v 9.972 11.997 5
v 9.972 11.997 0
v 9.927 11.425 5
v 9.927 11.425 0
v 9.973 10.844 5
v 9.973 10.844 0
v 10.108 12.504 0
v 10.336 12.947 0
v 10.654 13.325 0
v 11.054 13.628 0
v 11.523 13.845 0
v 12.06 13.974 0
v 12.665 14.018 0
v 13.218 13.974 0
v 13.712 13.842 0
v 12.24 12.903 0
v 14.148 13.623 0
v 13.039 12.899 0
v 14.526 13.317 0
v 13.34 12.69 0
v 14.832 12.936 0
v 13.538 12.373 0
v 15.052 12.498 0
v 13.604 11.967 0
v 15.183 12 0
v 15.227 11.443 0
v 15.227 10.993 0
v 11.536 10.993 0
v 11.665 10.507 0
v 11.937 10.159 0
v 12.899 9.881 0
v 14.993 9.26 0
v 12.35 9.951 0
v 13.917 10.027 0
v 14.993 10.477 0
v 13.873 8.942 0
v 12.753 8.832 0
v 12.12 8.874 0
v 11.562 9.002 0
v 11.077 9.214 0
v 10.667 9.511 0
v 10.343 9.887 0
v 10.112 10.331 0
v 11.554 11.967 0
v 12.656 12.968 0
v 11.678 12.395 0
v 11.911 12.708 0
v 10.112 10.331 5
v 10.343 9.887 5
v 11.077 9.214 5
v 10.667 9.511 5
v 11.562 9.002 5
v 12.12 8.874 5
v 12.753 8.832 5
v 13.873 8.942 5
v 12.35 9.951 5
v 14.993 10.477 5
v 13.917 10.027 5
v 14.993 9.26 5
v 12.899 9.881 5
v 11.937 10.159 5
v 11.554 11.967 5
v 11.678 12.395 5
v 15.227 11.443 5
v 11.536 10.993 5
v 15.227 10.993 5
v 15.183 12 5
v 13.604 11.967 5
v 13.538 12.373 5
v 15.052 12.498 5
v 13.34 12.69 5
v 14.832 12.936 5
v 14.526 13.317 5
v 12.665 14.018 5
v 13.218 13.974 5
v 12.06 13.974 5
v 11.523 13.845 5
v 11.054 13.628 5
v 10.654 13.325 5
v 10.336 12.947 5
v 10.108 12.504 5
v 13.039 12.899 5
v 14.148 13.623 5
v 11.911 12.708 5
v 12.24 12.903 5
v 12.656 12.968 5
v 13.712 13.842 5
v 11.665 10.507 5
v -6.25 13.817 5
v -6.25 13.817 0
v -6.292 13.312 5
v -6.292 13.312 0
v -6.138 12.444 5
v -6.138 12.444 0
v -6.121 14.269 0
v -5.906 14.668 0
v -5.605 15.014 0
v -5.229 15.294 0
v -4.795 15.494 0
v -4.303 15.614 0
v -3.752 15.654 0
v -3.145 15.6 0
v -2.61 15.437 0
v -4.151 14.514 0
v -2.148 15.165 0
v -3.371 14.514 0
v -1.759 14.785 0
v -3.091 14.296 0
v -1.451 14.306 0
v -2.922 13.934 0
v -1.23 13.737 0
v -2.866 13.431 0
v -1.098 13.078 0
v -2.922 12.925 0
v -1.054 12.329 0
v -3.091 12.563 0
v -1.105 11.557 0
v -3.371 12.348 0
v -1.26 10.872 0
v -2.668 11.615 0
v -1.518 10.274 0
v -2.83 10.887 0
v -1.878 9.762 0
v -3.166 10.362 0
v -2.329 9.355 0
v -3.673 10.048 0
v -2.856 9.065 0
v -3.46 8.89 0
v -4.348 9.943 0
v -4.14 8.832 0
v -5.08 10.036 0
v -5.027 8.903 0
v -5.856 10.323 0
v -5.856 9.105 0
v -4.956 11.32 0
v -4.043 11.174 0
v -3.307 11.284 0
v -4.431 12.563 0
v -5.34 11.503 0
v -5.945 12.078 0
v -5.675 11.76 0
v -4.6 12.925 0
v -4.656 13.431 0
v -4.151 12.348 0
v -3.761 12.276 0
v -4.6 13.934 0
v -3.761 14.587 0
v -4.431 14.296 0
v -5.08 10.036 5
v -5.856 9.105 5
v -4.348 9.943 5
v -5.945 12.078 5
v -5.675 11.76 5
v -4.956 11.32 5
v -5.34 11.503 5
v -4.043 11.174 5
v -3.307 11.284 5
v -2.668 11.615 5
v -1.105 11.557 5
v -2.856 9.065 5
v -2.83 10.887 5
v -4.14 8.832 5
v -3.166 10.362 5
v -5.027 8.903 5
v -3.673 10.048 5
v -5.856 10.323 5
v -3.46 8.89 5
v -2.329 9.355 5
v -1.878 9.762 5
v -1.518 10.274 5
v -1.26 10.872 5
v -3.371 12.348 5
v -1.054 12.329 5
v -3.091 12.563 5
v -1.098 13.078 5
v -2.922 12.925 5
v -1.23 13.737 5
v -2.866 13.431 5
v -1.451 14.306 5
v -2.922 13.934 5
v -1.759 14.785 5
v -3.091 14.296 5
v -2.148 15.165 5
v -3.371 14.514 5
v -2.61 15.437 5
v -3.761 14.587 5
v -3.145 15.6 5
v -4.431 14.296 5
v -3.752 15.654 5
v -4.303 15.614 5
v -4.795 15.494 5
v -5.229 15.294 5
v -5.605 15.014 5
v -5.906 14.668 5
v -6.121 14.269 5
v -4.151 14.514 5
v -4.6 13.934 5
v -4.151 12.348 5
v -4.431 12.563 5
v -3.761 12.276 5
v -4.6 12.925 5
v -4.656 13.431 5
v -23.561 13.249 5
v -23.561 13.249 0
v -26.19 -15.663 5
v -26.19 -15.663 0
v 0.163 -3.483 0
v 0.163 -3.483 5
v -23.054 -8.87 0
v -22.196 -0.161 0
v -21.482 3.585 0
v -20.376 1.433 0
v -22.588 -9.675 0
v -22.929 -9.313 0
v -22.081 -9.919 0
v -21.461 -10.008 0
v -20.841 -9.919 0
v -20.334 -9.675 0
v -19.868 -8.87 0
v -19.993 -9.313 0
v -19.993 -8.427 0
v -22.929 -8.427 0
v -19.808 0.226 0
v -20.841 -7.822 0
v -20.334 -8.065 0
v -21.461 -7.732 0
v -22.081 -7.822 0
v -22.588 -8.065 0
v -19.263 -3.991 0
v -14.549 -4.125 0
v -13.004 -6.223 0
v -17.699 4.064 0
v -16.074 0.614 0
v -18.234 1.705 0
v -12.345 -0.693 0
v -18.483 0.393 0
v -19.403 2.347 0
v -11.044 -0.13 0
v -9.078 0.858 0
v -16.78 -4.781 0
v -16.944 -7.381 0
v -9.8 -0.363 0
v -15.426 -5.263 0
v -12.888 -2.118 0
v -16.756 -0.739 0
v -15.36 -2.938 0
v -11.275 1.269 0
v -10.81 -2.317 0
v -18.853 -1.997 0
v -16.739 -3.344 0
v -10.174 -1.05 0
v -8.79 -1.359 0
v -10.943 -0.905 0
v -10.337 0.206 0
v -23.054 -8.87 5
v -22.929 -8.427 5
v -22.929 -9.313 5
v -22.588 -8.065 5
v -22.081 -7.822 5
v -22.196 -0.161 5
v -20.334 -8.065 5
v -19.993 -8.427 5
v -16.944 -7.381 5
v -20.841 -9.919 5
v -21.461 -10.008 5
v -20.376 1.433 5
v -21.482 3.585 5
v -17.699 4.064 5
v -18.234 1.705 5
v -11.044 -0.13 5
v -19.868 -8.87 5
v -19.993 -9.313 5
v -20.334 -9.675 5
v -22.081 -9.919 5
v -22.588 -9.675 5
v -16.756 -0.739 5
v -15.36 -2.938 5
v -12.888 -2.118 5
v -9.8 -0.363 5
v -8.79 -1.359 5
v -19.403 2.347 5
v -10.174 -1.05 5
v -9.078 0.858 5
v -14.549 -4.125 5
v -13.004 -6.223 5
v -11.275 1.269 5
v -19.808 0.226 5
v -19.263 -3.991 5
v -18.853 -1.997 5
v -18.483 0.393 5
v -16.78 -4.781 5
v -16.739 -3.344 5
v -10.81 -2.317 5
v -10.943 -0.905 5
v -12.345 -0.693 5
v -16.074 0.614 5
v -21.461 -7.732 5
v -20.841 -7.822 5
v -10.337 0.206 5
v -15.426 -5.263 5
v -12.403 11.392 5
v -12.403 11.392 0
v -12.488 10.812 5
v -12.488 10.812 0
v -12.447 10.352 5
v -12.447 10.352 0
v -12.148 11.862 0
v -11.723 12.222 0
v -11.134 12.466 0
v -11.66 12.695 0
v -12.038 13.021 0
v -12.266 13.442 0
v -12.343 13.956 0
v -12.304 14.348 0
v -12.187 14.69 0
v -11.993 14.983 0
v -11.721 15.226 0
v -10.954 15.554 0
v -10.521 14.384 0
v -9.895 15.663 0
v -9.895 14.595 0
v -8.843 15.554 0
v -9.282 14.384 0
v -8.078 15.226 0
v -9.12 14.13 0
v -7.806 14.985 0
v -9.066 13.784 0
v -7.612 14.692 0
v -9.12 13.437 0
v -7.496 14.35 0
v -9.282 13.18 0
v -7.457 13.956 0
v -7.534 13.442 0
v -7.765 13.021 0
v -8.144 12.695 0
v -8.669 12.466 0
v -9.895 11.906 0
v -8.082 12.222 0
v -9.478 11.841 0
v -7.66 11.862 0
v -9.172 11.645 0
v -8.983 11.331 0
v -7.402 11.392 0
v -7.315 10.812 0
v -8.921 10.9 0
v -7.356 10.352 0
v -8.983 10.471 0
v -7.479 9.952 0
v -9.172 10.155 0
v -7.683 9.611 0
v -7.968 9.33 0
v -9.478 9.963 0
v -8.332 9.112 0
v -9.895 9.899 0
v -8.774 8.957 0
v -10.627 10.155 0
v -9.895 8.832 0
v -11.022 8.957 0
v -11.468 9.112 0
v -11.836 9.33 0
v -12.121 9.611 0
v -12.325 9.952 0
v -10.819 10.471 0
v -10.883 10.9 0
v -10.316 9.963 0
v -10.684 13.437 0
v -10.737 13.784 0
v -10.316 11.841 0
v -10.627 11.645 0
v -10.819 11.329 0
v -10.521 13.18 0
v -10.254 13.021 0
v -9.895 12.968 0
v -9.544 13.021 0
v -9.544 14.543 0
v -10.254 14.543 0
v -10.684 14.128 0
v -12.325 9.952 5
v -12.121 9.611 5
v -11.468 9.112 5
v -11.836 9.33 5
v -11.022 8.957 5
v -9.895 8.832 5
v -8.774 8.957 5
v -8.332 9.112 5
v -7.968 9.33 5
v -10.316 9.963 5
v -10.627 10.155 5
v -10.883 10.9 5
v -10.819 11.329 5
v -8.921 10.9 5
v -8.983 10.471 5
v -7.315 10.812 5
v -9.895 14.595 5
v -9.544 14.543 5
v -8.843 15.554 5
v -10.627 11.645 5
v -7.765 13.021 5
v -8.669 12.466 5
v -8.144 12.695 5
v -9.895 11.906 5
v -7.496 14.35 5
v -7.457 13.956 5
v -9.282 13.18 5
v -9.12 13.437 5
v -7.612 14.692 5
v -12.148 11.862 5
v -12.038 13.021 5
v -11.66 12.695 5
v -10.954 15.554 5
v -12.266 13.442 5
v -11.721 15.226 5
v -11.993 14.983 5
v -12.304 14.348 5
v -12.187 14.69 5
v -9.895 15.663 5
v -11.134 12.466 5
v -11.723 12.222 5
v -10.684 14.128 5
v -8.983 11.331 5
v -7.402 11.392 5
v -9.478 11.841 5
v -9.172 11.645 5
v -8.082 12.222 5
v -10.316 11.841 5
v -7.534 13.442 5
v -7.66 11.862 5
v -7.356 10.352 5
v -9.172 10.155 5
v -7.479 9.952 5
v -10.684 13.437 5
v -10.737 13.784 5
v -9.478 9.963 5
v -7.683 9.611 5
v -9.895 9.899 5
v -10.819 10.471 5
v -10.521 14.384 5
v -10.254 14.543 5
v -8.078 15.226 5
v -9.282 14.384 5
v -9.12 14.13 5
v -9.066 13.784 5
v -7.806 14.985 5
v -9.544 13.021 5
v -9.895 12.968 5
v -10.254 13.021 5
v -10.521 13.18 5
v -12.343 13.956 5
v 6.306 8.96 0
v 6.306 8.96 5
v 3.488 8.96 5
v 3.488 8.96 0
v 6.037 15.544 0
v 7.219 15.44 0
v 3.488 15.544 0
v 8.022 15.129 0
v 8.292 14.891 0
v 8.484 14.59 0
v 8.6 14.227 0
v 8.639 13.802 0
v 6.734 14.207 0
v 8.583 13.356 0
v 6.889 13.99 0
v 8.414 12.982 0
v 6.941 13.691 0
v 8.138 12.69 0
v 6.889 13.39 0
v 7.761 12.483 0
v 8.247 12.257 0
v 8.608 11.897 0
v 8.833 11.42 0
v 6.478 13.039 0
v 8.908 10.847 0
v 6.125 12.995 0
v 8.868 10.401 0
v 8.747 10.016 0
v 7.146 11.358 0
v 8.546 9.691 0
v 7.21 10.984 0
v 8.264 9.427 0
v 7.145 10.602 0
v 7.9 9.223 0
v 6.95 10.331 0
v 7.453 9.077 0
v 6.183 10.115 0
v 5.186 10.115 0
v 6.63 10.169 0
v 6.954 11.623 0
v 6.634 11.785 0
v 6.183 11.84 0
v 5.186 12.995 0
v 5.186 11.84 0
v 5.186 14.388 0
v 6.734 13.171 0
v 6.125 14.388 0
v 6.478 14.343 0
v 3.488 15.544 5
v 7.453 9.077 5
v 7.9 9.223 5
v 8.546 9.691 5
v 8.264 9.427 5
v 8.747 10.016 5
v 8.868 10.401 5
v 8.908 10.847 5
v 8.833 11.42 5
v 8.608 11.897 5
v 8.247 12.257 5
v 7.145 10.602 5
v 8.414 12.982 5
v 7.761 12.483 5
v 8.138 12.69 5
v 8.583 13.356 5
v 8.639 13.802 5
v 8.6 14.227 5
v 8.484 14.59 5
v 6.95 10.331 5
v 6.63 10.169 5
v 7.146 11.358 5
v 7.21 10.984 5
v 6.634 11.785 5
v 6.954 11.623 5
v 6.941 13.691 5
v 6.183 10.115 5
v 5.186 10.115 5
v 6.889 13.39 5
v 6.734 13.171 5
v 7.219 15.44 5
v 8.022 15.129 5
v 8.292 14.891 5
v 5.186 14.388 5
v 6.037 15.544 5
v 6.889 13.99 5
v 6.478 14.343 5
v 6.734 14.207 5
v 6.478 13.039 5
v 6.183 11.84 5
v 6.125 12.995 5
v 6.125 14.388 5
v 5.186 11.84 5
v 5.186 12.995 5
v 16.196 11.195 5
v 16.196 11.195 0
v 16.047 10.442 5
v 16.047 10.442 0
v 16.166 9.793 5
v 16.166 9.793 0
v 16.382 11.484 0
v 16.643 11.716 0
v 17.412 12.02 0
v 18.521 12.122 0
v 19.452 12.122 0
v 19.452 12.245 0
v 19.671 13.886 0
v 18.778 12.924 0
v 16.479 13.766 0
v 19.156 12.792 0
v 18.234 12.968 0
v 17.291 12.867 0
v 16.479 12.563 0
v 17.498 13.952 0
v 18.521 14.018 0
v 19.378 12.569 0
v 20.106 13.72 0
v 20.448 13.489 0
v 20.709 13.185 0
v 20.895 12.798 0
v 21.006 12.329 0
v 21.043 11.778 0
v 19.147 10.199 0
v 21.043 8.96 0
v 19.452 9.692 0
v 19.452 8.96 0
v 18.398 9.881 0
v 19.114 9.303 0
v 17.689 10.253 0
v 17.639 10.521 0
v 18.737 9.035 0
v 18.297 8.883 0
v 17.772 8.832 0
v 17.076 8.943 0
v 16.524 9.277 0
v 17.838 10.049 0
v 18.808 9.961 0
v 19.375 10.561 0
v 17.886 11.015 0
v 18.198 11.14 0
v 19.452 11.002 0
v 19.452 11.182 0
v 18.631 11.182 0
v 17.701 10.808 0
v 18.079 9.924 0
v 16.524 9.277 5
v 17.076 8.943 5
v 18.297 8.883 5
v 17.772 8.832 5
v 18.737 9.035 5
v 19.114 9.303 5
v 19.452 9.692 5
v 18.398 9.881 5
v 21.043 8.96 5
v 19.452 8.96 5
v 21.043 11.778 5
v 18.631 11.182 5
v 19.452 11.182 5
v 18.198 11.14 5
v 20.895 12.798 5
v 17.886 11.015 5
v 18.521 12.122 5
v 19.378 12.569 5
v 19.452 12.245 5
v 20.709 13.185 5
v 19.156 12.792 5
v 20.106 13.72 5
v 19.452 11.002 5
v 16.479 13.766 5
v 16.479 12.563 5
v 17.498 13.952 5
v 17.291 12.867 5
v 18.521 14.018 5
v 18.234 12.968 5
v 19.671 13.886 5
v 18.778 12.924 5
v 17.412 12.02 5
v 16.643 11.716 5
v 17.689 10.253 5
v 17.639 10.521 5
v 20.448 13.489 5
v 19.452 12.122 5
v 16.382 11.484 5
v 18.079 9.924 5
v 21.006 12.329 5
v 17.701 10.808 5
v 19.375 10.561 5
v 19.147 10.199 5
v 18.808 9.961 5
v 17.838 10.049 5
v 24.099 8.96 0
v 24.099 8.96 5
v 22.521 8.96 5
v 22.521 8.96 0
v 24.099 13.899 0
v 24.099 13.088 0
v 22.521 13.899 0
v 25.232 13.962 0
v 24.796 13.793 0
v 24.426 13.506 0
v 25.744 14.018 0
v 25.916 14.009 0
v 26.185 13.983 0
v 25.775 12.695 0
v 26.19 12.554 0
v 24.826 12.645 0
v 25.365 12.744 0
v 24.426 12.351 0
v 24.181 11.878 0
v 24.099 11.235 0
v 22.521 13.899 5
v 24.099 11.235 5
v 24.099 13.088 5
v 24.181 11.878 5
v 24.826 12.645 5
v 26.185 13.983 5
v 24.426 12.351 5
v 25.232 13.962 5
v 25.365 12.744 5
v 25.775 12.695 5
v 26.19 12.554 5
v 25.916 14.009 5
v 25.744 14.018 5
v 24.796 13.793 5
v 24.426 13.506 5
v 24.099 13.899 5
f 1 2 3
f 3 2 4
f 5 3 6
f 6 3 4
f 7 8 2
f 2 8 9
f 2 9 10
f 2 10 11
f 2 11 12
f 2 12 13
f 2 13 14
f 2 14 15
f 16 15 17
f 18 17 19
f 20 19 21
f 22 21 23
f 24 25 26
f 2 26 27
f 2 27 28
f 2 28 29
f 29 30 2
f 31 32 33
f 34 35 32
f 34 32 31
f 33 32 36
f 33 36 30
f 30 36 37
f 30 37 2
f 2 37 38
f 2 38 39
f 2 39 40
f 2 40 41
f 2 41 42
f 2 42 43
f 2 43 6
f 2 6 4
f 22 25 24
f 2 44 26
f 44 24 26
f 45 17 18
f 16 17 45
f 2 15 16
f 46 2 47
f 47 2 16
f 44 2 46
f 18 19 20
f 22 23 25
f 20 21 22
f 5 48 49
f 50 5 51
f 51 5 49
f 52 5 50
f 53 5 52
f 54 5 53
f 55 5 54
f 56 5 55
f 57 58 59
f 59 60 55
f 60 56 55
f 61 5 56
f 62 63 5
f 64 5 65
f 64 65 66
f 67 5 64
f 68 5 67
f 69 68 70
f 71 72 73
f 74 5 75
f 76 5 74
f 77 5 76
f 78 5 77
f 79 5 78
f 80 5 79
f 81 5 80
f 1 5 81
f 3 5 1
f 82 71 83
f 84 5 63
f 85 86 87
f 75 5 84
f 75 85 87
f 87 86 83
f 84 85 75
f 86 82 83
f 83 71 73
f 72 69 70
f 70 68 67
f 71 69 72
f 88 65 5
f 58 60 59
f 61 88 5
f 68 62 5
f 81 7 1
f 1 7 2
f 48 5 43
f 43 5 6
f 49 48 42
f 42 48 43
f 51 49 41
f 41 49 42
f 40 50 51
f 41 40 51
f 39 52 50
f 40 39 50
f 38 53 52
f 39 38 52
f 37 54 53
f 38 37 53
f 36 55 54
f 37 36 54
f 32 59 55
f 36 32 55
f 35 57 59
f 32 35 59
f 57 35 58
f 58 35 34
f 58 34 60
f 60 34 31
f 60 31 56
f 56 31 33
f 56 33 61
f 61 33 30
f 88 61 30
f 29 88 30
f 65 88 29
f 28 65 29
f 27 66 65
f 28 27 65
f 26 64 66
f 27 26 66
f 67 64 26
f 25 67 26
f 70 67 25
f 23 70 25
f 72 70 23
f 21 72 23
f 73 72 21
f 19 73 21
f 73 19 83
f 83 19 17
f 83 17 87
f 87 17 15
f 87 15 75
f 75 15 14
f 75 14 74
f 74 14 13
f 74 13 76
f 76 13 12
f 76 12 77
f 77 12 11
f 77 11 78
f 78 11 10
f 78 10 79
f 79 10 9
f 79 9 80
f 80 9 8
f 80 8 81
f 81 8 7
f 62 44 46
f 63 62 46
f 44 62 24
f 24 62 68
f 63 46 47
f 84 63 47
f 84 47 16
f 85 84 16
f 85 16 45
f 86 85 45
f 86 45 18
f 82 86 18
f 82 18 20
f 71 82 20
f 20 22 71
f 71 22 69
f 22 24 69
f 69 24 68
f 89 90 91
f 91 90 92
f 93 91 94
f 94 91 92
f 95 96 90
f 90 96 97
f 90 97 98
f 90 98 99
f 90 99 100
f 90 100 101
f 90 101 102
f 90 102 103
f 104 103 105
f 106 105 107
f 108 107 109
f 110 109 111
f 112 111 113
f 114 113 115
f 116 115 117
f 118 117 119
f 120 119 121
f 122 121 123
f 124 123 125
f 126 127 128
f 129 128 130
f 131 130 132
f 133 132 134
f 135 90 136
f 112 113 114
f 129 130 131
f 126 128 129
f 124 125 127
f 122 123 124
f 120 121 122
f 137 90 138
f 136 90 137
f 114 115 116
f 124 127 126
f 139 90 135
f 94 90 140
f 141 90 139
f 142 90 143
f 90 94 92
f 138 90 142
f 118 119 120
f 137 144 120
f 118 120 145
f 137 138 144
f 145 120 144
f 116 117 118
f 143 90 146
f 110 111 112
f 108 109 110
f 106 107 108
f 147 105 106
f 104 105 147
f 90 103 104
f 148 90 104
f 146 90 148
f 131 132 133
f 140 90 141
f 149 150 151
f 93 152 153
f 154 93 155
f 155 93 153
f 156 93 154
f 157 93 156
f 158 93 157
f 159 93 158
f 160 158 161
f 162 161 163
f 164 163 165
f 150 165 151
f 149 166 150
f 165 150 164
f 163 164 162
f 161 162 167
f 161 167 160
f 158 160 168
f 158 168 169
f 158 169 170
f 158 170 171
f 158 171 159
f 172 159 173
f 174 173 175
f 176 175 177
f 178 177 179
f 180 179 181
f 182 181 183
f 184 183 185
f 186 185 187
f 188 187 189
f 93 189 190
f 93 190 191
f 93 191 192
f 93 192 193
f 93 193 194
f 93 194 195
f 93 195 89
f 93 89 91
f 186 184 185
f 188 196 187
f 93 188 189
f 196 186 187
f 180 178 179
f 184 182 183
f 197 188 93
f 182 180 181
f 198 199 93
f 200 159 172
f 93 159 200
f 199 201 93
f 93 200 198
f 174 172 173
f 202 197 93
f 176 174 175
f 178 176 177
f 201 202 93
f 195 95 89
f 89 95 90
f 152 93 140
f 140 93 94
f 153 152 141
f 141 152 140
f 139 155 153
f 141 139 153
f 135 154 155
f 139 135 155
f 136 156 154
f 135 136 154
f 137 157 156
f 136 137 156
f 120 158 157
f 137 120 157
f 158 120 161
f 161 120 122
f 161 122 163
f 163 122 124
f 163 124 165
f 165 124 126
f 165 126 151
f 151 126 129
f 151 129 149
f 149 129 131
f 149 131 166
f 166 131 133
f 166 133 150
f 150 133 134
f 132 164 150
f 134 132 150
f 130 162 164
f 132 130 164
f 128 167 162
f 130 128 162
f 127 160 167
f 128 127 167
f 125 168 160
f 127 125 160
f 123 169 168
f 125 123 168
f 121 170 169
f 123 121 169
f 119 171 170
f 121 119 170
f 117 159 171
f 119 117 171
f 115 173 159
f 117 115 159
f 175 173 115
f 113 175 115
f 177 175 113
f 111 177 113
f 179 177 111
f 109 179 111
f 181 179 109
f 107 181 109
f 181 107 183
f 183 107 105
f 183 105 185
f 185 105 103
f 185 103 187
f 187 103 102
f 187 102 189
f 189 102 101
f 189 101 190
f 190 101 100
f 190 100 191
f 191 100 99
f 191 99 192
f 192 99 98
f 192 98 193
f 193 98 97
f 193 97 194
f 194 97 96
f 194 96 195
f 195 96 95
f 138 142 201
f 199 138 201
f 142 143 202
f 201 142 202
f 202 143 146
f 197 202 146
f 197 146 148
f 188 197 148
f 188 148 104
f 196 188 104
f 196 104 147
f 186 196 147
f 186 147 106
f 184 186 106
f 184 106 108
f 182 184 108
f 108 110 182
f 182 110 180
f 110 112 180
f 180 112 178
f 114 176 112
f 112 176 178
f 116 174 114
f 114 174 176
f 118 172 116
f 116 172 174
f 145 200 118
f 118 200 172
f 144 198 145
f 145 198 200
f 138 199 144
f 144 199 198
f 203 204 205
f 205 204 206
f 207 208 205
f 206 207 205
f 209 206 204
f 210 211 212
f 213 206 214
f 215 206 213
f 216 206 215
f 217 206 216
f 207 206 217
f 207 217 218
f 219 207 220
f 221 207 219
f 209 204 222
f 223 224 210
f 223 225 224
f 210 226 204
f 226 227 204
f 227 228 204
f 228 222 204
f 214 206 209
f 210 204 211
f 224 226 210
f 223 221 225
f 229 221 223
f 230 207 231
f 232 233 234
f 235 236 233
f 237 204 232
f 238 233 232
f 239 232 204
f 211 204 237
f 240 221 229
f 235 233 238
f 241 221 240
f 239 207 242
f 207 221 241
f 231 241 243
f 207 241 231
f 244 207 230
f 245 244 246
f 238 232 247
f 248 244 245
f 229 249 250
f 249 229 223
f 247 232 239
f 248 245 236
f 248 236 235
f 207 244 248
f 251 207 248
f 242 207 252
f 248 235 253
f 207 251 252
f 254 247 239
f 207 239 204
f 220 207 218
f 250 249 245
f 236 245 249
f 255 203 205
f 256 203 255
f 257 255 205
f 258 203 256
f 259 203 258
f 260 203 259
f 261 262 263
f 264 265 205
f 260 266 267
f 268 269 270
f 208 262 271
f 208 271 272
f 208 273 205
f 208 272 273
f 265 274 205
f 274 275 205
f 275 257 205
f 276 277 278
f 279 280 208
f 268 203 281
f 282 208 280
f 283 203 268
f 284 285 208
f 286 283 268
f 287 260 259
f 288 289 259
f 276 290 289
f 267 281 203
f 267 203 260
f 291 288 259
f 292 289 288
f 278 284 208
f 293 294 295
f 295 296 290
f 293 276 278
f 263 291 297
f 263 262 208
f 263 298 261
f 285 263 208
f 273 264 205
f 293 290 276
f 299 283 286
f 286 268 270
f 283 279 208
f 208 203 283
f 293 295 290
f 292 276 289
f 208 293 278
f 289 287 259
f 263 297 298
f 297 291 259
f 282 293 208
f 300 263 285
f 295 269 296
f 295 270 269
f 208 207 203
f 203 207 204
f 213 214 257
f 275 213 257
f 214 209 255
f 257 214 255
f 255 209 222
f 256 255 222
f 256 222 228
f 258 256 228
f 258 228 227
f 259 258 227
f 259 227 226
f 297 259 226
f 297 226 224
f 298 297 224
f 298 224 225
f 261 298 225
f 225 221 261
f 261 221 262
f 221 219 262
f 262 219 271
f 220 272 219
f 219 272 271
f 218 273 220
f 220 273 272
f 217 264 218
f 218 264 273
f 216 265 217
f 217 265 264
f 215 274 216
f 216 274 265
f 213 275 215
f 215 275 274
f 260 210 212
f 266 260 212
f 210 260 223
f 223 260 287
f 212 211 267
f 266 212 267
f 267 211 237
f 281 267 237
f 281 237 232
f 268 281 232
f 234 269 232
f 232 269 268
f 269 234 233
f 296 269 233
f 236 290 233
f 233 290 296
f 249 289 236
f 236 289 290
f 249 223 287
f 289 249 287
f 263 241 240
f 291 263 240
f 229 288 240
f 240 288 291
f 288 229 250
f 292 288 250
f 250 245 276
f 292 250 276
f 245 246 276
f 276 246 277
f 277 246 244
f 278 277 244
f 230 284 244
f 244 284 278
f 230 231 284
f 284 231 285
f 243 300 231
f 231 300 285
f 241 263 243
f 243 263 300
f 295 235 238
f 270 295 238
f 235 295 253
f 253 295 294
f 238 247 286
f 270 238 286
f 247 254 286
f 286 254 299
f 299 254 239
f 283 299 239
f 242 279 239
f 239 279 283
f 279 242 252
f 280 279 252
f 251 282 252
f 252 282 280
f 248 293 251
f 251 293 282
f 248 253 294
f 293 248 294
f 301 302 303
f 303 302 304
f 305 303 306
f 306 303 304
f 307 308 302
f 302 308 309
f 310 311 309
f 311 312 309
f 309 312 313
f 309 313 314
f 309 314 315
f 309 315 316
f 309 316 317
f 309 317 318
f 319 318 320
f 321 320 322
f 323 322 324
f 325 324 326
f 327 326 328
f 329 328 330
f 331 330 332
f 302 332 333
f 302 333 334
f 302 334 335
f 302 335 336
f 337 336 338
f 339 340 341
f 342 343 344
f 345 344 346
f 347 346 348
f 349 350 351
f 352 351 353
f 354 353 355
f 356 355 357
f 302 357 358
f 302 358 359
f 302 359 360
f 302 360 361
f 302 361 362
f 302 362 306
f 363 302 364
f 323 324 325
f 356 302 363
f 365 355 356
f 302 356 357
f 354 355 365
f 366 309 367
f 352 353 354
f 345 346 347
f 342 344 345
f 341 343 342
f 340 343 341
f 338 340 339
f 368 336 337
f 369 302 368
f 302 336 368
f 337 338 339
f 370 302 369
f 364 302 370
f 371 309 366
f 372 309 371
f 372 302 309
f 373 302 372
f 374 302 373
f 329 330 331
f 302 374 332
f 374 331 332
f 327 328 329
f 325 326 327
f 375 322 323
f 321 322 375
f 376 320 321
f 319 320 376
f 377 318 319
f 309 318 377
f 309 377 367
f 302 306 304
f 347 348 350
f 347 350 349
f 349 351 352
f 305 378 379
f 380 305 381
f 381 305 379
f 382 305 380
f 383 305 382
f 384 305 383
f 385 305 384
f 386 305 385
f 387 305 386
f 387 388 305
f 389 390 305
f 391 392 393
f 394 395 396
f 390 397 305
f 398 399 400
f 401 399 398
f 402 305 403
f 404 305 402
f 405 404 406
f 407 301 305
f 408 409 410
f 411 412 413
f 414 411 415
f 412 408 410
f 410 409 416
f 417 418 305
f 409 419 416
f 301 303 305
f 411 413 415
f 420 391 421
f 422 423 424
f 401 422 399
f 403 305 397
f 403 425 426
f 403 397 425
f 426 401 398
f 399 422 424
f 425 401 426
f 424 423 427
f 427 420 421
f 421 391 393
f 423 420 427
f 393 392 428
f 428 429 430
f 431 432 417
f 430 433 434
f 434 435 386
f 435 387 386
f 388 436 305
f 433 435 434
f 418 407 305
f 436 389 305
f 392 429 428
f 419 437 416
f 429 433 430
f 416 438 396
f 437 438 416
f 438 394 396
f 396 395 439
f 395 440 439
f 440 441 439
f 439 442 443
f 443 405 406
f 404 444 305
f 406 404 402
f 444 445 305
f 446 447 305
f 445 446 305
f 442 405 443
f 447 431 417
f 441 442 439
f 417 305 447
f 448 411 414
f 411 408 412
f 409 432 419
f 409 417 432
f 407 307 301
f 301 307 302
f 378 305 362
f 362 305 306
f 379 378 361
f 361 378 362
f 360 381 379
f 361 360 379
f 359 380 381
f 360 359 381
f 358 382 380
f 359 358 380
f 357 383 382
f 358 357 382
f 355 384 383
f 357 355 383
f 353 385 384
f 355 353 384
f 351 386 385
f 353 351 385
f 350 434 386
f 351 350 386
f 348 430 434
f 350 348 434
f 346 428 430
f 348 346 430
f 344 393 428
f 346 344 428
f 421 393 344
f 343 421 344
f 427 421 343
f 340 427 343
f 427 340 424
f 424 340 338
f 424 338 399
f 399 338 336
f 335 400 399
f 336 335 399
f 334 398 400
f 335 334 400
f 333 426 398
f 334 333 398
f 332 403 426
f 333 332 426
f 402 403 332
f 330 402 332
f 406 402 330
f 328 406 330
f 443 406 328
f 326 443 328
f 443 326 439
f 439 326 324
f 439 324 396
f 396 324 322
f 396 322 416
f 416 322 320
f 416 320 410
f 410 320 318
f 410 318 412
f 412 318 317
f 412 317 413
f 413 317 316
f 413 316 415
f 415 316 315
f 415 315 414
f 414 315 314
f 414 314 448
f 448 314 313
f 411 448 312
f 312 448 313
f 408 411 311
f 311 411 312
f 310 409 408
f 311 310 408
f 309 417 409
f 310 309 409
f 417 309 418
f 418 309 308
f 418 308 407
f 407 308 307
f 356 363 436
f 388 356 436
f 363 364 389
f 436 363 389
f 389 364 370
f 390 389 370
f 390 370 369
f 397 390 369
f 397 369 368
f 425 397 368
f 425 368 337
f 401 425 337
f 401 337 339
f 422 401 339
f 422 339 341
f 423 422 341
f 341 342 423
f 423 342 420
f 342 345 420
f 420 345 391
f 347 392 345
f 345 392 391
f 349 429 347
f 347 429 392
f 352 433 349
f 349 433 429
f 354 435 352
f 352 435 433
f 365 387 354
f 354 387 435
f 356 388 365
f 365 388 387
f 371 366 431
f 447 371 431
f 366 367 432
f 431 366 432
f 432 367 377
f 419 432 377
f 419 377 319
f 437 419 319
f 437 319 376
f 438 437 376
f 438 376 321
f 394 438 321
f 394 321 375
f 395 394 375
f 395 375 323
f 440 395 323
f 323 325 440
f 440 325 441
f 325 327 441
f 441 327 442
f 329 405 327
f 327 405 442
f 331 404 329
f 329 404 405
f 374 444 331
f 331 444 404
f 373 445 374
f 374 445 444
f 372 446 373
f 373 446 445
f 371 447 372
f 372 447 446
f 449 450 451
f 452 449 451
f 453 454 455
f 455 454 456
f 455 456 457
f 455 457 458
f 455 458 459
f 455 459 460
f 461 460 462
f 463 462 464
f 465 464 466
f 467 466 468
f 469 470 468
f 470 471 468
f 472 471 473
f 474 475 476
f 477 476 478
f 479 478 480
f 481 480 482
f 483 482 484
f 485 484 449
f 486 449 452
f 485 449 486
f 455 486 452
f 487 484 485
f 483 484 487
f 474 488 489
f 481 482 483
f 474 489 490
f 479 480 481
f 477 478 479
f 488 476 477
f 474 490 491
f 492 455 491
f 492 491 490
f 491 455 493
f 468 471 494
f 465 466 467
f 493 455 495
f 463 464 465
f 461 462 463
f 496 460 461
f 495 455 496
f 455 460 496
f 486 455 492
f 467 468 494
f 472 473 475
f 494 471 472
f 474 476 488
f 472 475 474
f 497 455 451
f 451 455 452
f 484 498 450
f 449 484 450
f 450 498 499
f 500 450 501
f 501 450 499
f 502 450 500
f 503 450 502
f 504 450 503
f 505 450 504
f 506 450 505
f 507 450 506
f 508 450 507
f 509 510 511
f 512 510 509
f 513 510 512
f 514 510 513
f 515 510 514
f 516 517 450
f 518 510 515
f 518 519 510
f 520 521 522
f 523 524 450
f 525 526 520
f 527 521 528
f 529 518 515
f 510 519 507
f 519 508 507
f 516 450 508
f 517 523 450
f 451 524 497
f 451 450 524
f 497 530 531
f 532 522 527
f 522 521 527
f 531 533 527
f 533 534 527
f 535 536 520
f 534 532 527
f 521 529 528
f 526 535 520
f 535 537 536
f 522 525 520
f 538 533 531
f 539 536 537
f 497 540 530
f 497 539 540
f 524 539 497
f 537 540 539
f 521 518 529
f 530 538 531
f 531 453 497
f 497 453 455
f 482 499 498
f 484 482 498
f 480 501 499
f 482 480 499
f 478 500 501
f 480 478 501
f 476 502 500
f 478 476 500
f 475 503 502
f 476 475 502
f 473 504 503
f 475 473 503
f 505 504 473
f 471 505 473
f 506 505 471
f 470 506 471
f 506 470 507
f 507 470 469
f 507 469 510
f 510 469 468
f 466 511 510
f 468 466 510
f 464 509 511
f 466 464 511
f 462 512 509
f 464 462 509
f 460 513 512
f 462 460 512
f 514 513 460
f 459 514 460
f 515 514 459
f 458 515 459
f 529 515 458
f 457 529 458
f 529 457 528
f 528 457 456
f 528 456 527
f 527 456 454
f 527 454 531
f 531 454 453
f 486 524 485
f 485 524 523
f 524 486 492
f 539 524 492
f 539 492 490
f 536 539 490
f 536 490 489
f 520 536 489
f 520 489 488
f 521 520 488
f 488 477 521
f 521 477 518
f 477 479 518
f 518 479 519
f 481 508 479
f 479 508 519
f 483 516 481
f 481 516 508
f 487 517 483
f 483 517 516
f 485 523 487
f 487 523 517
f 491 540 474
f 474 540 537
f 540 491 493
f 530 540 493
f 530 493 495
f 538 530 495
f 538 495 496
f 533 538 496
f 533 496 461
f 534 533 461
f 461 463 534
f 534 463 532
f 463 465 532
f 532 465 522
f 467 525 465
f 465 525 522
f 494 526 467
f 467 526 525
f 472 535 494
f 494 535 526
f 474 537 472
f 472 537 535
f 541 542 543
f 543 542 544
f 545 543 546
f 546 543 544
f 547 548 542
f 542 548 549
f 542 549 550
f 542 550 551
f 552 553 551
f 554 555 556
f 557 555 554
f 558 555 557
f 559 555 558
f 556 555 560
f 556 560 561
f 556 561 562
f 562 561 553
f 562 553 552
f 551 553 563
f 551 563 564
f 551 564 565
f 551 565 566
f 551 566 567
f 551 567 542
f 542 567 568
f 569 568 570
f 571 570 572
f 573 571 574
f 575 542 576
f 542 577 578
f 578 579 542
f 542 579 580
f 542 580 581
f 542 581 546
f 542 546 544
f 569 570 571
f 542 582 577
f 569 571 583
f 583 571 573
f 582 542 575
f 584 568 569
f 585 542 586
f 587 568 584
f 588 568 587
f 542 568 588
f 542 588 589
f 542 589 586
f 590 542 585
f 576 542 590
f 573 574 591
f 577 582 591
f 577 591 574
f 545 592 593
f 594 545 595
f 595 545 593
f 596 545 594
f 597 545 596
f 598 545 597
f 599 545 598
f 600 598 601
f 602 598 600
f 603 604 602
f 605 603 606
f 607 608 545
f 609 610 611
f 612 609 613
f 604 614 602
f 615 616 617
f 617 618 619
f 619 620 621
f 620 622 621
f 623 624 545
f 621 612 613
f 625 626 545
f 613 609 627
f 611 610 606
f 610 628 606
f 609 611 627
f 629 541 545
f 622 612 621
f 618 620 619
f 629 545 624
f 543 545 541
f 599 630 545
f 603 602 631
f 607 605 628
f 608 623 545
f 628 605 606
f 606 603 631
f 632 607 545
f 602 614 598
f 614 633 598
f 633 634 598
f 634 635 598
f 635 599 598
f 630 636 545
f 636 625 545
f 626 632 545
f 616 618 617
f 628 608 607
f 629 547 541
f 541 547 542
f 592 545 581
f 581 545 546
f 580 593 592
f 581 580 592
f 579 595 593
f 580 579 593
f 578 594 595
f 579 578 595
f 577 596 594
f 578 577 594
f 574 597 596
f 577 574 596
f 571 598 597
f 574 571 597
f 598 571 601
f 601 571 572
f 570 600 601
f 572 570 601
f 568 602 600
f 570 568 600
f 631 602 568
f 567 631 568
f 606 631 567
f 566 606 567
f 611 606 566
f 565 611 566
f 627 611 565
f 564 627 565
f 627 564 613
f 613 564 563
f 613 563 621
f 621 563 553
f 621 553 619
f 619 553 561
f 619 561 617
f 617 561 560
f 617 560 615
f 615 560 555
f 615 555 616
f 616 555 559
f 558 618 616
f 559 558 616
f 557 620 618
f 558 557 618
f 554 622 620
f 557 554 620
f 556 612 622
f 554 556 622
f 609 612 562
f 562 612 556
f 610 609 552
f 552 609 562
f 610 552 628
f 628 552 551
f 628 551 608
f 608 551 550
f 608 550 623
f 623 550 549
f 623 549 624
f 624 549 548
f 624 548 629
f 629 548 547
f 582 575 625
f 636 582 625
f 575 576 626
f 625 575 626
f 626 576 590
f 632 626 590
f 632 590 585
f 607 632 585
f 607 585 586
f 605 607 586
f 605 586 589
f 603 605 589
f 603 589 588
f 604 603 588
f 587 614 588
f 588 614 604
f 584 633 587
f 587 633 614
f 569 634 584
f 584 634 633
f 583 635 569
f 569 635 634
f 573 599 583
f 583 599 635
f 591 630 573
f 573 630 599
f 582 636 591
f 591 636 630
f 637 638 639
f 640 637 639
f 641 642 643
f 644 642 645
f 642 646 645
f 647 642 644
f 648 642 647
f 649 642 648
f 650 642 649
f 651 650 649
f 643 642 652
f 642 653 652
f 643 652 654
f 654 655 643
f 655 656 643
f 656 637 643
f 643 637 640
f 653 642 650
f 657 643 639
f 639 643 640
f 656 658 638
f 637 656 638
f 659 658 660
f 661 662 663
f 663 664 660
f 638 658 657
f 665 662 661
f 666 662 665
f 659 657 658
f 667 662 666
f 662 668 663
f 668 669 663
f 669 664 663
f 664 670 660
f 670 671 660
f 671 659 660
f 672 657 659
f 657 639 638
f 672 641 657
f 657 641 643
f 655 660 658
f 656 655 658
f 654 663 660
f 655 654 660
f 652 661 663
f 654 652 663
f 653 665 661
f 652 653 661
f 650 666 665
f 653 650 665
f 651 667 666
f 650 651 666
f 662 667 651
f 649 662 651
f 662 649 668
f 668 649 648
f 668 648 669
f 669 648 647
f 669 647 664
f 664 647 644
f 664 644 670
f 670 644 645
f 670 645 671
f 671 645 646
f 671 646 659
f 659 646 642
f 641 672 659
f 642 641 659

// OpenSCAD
// Module names are of the form poly_<inkscape-path-id>().  As a result,
// you can associate a polygon in this OpenSCAD program with the corresponding
// SVG element in the Inkscape document by looking for the XML element with
// the attribute id="inkscape-path-id".

// fudge value is used to ensure that subtracted solids are a tad taller
// in the z dimension than the polygon being subtracted from.  This helps
// keep the resulting .stl file manifold.
fudge = 0.1;

module poly_path2996(h)
{
  scale([25.4/90, -25.4/90, 1]) union()
  {
    difference()
    {
       linear_extrude(height=h)
         polygon([[53.953965,-40.544545],[53.953965,-38.950795],[40.875845,-38.950795],[41.332867,-37.228138],[42.297715,-35.997675],[43.758646,-35.259388],[45.703965,-35.013295],[49.313345,-35.528925],[53.125845,-37.122675],[53.125845,-32.810175],[49.157095,-31.685175],[45.188345,-31.294545],[42.945173,-31.444935],[40.965678,-31.896106],[39.249859,-32.648059],[37.797715,-33.700795],[36.649277,-35.032825],[35.828965,-36.607044],[35.336777,-38.423451],[35.172715,-40.482045],[35.333847,-42.508408],[35.817245,-44.306259],[36.622910,-45.875597],[37.750845,-47.216425],[39.168808,-48.289657],[40.828961,-49.056253],[42.731305,-49.516215],[44.875845,-49.669545],[46.834818,-49.514261],[48.586768,-49.048439],[50.131694,-48.272077],[51.469595,-47.185175],[52.556497,-45.838484],[53.332858,-44.282816],[53.798681,-42.518170]]);
       translate([0, 0, -fudge])
         linear_extrude(height=h+2*fudge)
           polygon([[48.203965,-42.403925],[47.969582,-43.841411],[47.266465,-44.966425],[46.200047,-45.704693],[44.844595,-45.950795],[43.371928,-45.720320],[42.203965,-45.028925],[41.379743,-43.919540],[40.938345,-42.403925]]);
    }
  }
}

module poly_path2992(h)
{
  scale([25.4/90, -25.4/90, 1]) union()
  {
    difference()
    {
       linear_extrude(height=h)
         polygon([[-20.749155,-32.263295],[-20.749155,-36.575795],[-17.999155,-35.560175],[-15.405405,-35.232045],[-13.014794,-35.603139],[-11.217905,-36.716425],[-10.026515,-38.575794],[-9.452285,-41.153925],[-11.717905,-39.982045],[-14.327285,-39.591425],[-17.561662,-40.110949],[-18.921036,-40.760363],[-20.108535,-41.669545],[-21.065565,-42.798443],[-21.749159,-44.091409],[-22.296035,-47.169545],[-22.143692,-48.958597],[-21.686660,-50.560155],[-20.924942,-51.974220],[-19.858535,-53.200795],[-18.528461,-54.191991],[-16.991353,-54.899995],[-15.247211,-55.324806],[-13.296035,-55.466425],[-11.143701,-55.274025],[-9.249172,-54.696871],[-7.612450,-53.734961],[-6.233535,-52.388295],[-5.139795,-50.690044],[-4.358549,-48.673440],[-3.889796,-46.338484],[-3.733535,-43.685175],[-3.916164,-40.948839],[-4.464019,-38.521103],[-5.377100,-36.401964],[-6.655405,-34.591425],[-8.252098,-33.149040],[-10.120265,-32.118765],[-12.259911,-31.500600],[-14.671035,-31.294545],[-17.811655,-31.544545]]);
       translate([0, 0, -fudge])
         linear_extrude(height=h+2*fudge)
           polygon([[-13.327285,-43.497675],[-11.944482,-43.751569],[-10.952285,-44.513295],[-10.354638,-45.798444],[-10.155405,-47.591425],[-10.354638,-49.372661],[-10.952285,-50.653925],[-11.944482,-51.427348],[-13.327285,-51.685175],[-14.710104,-51.427348],[-15.702285,-50.653925],[-16.299947,-49.372661],[-16.499155,-47.591425],[-16.299947,-45.798444],[-15.702285,-44.513295],[-14.710104,-43.751569]]);
    }
  }
}

module poly_path3012(h)
{
  scale([25.4/90, -25.4/90, 1]) union()
  {
    difference()
    {
       linear_extrude(height=h)
         polygon([[0.575818,12.342025],[-92.797714,55.497675],[-83.484834,-46.944005]]);
       translate([0, 0, -fudge])
         linear_extrude(height=h+2*fudge)
           polygon([[-70.397855,31.429645],[-70.841517,32.999313],[-72.051423,34.281122],[-73.845953,35.145343],[-76.043488,35.462245],[-78.241024,35.145343],[-80.035554,34.281122],[-81.245460,32.999313],[-81.689121,31.429645],[-81.245460,29.859978],[-80.035554,28.578172],[-78.241024,27.713956],[-76.043488,27.397055],[-73.845953,27.713956],[-72.051423,28.578172],[-70.841517,29.859978],[-70.397855,31.429645]]);
       translate([0, 0, -fudge])
         linear_extrude(height=h+2*fudge)
           polygon([[-31.147261,4.814525],[-36.050701,3.718685],[-38.302241,8.210355],[-38.775291,3.208275],[-43.742891,2.454935],[-39.131801,0.459315],[-39.950412,-4.497945],[-36.627561,-0.729225],[-32.165881,-3.039635],[-34.723332,1.285175]]);
       translate([0, 0, -fudge])
         linear_extrude(height=h+2*fudge)
           polygon([[-45.664621,7.502915],[-51.549851,14.615195],[-46.075911,22.048675],[-54.658732,18.649305],[-60.036847,26.152395],[-59.456092,16.939185],[-68.253887,14.142875],[-59.312140,11.848165],[-59.371360,2.616865],[-54.425811,10.411865]]);
       translate([0, 0, -fudge])
         linear_extrude(height=h+2*fudge)
           polygon([[-56.955872,-2.175315],[-65.492407,-1.394145],[-66.803400,7.077215],[-70.184266,-0.800115],[-78.646126,0.570845],[-72.199084,-5.078775],[-76.117807,-12.702835],[-68.752448,-8.317165],[-62.712492,-14.400055],[-64.607495,-6.039935]]);
    }
  }
}

module poly_path2990(h)
{
  scale([25.4/90, -25.4/90, 1]) union()
  {
    difference()
    {
       linear_extrude(height=h)
         polygon([[-39.452286,-44.169545],[-41.315569,-44.982035],[-42.655405,-46.138295],[-43.464005,-47.630471],[-43.733536,-49.450795],[-43.595841,-50.839456],[-43.182755,-52.052343],[-42.494278,-53.089456],[-41.530405,-53.950795],[-38.811663,-55.110935],[-35.061655,-55.497675],[-31.335107,-55.110935],[-28.624155,-53.950795],[-27.660300,-53.095317],[-26.971829,-52.060158],[-26.558741,-50.845317],[-26.421035,-49.450795],[-26.694487,-47.630471],[-27.514785,-46.138295],[-28.854640,-44.982035],[-30.717905,-44.169545],[-28.635892,-43.306258],[-27.139785,-42.028925],[-26.225738,-40.364854],[-25.921035,-38.310175],[-26.065578,-36.681263],[-26.499174,-35.263293],[-27.221827,-34.056263],[-28.233535,-33.060175],[-29.521632,-32.287710],[-31.089018,-31.735951],[-35.061655,-31.294545],[-39.053852,-31.735951],[-40.633928,-32.287710],[-41.936655,-33.060175],[-42.948377,-34.056263],[-43.671036,-35.263293],[-44.104629,-36.681263],[-44.249156,-38.310175],[-43.948379,-40.364854],[-43.046036,-42.028925],[-41.538225,-43.306258]]);
       translate([0, 0, -fudge])
         linear_extrude(height=h+2*fudge)
           polygon([[-35.061655,-42.185175],[-36.553853,-41.954695],[-37.655405,-41.263295],[-38.335102,-40.142196],[-38.561655,-38.622675],[-38.335102,-37.103138],[-37.655405,-35.982045],[-36.553853,-35.302356],[-35.061655,-35.075795],[-33.585105,-35.302356],[-32.499155,-35.982045],[-31.831200,-37.103138],[-31.608536,-38.622675],[-31.831200,-40.150011],[-32.499155,-41.263295],[-33.585105,-41.954695]]);
       translate([0, 0, -fudge])
         linear_extrude(height=h+2*fudge)
           polygon([[-38.046036,-48.841425],[-37.854636,-47.610944],[-37.280405,-46.700795],[-36.335104,-46.138288],[-35.061655,-45.950795],[-33.815577,-46.138288],[-32.889786,-46.700795],[-32.315578,-47.610944],[-32.124155,-48.841425],[-32.315578,-50.067969],[-32.889786,-50.966425],[-33.815577,-51.528910],[-35.061655,-51.716425],[-36.335104,-51.528910],[-37.280405,-50.966425],[-37.854636,-50.060158]]);
    }
  }
}

module poly_path2994(h)
{
  scale([25.4/90, -25.4/90, 1]) union()
  {
    difference()
    {
       linear_extrude(height=h)
         polygon([[27.500845,-44.232045],[29.219575,-43.431256],[30.500845,-42.153925],[31.297700,-40.466416],[31.563345,-38.435175],[31.420750,-36.855092],[30.993012,-35.489856],[30.280127,-34.339468],[29.282095,-33.403925],[27.993018,-32.679314],[26.407078,-32.161736],[22.344595,-31.747675],[12.360215,-31.747675],[12.360215,-55.075795],[21.391465,-55.075795],[25.578955,-54.708590],[28.422715,-53.607045],[29.379733,-52.762307],[30.063323,-51.696875],[30.473484,-50.410748],[30.610215,-48.903925],[30.410979,-47.325783],[29.813345,-45.997675],[28.836765,-44.962505]]);
       translate([0, 0, -fudge])
         linear_extrude(height=h+2*fudge)
           polygon([[21.703965,-46.044545],[22.953952,-46.200786],[23.860215,-46.669545],[24.410986,-47.442969],[24.594595,-48.513295],[24.410986,-49.571878],[23.860215,-50.341425],[22.953952,-50.821875],[21.703965,-50.982045],[18.375845,-50.982045],[18.375845,-46.044545]]);
       translate([0, 0, -fudge])
         linear_extrude(height=h+2*fudge)
           polygon([[21.907095,-35.841425],[23.493018,-36.032824],[24.625845,-36.607045],[25.317232,-37.567976],[25.547715,-38.919545],[25.321138,-40.243760],[24.641465,-41.185175],[23.504736,-41.759381],[21.907095,-41.950795],[18.375845,-41.950795],[18.375845,-35.841425]]);
    }
  }
}

module poly_path2998(h)
{
  scale([25.4/90, -25.4/90, 1]) union()
  {
    difference()
    {
       linear_extrude(height=h)
         polygon([[74.563345,-41.732045],[74.563345,-31.747675],[68.922715,-31.747675],[68.922715,-34.341425],[67.727395,-32.962511],[66.391465,-32.013295],[64.832866,-31.474231],[62.969595,-31.294545],[60.504742,-31.689076],[58.547715,-32.872675],[57.282090,-34.700793],[56.860215,-36.997675],[57.387557,-39.665634],[58.046738,-40.692002],[58.969595,-41.513295],[61.696152,-42.591411],[65.625845,-42.950795],[68.922715,-42.950795],[68.922715,-43.388295],[68.660988,-44.536726],[67.875845,-45.325795],[66.535991,-45.794535],[64.610215,-45.950795],[61.266465,-45.591425],[58.391465,-44.513295],[58.391465,-48.778925],[62.000845,-49.435175],[65.625845,-49.669545],[69.700047,-49.200780],[71.242041,-48.614846],[72.453965,-47.794545],[73.376806,-46.718364],[74.035983,-45.349221],[74.431497,-43.687115]]);
       translate([0, 0, -fudge])
         linear_extrude(height=h+2*fudge)
           polygon([[66.016465,-39.622675],[64.481302,-39.474229],[63.375845,-39.028925],[62.719588,-38.294543],[62.500845,-37.278925],[62.676616,-36.329701],[63.203965,-35.607045],[64.059430,-35.161730],[65.188345,-35.013295],[66.641457,-35.294545],[67.844595,-36.138295],[68.653175,-37.419541],[68.922715,-38.982045],[68.922715,-39.622675]]);
    }
  }
}

module poly_path3000(h)
{
  scale([25.4/90, -25.4/90, 1]) union()
  {
    linear_extrude(height=h)
      polygon([[92.797715,-44.482045],[91.328965,-44.982045],[89.875845,-45.153925],[87.965675,-44.806254],[86.547715,-43.763295],[85.680521,-42.087508],[85.391465,-39.810175],[85.391465,-31.747675],[79.797715,-31.747675],[79.797715,-49.247675],[85.391465,-49.247675],[85.391465,-46.372675],[86.547708,-47.857035],[87.860215,-48.872675],[89.403176,-49.470314],[91.219595,-49.669545],[91.828965,-49.638295],[92.782095,-49.544545]]);
  }
}

poly_path2996(5);
poly_path2992(5);
poly_path3012(5);
poly_path2990(5);
poly_path2994(5);
poly_path2998(5);
poly_path3000(5);
